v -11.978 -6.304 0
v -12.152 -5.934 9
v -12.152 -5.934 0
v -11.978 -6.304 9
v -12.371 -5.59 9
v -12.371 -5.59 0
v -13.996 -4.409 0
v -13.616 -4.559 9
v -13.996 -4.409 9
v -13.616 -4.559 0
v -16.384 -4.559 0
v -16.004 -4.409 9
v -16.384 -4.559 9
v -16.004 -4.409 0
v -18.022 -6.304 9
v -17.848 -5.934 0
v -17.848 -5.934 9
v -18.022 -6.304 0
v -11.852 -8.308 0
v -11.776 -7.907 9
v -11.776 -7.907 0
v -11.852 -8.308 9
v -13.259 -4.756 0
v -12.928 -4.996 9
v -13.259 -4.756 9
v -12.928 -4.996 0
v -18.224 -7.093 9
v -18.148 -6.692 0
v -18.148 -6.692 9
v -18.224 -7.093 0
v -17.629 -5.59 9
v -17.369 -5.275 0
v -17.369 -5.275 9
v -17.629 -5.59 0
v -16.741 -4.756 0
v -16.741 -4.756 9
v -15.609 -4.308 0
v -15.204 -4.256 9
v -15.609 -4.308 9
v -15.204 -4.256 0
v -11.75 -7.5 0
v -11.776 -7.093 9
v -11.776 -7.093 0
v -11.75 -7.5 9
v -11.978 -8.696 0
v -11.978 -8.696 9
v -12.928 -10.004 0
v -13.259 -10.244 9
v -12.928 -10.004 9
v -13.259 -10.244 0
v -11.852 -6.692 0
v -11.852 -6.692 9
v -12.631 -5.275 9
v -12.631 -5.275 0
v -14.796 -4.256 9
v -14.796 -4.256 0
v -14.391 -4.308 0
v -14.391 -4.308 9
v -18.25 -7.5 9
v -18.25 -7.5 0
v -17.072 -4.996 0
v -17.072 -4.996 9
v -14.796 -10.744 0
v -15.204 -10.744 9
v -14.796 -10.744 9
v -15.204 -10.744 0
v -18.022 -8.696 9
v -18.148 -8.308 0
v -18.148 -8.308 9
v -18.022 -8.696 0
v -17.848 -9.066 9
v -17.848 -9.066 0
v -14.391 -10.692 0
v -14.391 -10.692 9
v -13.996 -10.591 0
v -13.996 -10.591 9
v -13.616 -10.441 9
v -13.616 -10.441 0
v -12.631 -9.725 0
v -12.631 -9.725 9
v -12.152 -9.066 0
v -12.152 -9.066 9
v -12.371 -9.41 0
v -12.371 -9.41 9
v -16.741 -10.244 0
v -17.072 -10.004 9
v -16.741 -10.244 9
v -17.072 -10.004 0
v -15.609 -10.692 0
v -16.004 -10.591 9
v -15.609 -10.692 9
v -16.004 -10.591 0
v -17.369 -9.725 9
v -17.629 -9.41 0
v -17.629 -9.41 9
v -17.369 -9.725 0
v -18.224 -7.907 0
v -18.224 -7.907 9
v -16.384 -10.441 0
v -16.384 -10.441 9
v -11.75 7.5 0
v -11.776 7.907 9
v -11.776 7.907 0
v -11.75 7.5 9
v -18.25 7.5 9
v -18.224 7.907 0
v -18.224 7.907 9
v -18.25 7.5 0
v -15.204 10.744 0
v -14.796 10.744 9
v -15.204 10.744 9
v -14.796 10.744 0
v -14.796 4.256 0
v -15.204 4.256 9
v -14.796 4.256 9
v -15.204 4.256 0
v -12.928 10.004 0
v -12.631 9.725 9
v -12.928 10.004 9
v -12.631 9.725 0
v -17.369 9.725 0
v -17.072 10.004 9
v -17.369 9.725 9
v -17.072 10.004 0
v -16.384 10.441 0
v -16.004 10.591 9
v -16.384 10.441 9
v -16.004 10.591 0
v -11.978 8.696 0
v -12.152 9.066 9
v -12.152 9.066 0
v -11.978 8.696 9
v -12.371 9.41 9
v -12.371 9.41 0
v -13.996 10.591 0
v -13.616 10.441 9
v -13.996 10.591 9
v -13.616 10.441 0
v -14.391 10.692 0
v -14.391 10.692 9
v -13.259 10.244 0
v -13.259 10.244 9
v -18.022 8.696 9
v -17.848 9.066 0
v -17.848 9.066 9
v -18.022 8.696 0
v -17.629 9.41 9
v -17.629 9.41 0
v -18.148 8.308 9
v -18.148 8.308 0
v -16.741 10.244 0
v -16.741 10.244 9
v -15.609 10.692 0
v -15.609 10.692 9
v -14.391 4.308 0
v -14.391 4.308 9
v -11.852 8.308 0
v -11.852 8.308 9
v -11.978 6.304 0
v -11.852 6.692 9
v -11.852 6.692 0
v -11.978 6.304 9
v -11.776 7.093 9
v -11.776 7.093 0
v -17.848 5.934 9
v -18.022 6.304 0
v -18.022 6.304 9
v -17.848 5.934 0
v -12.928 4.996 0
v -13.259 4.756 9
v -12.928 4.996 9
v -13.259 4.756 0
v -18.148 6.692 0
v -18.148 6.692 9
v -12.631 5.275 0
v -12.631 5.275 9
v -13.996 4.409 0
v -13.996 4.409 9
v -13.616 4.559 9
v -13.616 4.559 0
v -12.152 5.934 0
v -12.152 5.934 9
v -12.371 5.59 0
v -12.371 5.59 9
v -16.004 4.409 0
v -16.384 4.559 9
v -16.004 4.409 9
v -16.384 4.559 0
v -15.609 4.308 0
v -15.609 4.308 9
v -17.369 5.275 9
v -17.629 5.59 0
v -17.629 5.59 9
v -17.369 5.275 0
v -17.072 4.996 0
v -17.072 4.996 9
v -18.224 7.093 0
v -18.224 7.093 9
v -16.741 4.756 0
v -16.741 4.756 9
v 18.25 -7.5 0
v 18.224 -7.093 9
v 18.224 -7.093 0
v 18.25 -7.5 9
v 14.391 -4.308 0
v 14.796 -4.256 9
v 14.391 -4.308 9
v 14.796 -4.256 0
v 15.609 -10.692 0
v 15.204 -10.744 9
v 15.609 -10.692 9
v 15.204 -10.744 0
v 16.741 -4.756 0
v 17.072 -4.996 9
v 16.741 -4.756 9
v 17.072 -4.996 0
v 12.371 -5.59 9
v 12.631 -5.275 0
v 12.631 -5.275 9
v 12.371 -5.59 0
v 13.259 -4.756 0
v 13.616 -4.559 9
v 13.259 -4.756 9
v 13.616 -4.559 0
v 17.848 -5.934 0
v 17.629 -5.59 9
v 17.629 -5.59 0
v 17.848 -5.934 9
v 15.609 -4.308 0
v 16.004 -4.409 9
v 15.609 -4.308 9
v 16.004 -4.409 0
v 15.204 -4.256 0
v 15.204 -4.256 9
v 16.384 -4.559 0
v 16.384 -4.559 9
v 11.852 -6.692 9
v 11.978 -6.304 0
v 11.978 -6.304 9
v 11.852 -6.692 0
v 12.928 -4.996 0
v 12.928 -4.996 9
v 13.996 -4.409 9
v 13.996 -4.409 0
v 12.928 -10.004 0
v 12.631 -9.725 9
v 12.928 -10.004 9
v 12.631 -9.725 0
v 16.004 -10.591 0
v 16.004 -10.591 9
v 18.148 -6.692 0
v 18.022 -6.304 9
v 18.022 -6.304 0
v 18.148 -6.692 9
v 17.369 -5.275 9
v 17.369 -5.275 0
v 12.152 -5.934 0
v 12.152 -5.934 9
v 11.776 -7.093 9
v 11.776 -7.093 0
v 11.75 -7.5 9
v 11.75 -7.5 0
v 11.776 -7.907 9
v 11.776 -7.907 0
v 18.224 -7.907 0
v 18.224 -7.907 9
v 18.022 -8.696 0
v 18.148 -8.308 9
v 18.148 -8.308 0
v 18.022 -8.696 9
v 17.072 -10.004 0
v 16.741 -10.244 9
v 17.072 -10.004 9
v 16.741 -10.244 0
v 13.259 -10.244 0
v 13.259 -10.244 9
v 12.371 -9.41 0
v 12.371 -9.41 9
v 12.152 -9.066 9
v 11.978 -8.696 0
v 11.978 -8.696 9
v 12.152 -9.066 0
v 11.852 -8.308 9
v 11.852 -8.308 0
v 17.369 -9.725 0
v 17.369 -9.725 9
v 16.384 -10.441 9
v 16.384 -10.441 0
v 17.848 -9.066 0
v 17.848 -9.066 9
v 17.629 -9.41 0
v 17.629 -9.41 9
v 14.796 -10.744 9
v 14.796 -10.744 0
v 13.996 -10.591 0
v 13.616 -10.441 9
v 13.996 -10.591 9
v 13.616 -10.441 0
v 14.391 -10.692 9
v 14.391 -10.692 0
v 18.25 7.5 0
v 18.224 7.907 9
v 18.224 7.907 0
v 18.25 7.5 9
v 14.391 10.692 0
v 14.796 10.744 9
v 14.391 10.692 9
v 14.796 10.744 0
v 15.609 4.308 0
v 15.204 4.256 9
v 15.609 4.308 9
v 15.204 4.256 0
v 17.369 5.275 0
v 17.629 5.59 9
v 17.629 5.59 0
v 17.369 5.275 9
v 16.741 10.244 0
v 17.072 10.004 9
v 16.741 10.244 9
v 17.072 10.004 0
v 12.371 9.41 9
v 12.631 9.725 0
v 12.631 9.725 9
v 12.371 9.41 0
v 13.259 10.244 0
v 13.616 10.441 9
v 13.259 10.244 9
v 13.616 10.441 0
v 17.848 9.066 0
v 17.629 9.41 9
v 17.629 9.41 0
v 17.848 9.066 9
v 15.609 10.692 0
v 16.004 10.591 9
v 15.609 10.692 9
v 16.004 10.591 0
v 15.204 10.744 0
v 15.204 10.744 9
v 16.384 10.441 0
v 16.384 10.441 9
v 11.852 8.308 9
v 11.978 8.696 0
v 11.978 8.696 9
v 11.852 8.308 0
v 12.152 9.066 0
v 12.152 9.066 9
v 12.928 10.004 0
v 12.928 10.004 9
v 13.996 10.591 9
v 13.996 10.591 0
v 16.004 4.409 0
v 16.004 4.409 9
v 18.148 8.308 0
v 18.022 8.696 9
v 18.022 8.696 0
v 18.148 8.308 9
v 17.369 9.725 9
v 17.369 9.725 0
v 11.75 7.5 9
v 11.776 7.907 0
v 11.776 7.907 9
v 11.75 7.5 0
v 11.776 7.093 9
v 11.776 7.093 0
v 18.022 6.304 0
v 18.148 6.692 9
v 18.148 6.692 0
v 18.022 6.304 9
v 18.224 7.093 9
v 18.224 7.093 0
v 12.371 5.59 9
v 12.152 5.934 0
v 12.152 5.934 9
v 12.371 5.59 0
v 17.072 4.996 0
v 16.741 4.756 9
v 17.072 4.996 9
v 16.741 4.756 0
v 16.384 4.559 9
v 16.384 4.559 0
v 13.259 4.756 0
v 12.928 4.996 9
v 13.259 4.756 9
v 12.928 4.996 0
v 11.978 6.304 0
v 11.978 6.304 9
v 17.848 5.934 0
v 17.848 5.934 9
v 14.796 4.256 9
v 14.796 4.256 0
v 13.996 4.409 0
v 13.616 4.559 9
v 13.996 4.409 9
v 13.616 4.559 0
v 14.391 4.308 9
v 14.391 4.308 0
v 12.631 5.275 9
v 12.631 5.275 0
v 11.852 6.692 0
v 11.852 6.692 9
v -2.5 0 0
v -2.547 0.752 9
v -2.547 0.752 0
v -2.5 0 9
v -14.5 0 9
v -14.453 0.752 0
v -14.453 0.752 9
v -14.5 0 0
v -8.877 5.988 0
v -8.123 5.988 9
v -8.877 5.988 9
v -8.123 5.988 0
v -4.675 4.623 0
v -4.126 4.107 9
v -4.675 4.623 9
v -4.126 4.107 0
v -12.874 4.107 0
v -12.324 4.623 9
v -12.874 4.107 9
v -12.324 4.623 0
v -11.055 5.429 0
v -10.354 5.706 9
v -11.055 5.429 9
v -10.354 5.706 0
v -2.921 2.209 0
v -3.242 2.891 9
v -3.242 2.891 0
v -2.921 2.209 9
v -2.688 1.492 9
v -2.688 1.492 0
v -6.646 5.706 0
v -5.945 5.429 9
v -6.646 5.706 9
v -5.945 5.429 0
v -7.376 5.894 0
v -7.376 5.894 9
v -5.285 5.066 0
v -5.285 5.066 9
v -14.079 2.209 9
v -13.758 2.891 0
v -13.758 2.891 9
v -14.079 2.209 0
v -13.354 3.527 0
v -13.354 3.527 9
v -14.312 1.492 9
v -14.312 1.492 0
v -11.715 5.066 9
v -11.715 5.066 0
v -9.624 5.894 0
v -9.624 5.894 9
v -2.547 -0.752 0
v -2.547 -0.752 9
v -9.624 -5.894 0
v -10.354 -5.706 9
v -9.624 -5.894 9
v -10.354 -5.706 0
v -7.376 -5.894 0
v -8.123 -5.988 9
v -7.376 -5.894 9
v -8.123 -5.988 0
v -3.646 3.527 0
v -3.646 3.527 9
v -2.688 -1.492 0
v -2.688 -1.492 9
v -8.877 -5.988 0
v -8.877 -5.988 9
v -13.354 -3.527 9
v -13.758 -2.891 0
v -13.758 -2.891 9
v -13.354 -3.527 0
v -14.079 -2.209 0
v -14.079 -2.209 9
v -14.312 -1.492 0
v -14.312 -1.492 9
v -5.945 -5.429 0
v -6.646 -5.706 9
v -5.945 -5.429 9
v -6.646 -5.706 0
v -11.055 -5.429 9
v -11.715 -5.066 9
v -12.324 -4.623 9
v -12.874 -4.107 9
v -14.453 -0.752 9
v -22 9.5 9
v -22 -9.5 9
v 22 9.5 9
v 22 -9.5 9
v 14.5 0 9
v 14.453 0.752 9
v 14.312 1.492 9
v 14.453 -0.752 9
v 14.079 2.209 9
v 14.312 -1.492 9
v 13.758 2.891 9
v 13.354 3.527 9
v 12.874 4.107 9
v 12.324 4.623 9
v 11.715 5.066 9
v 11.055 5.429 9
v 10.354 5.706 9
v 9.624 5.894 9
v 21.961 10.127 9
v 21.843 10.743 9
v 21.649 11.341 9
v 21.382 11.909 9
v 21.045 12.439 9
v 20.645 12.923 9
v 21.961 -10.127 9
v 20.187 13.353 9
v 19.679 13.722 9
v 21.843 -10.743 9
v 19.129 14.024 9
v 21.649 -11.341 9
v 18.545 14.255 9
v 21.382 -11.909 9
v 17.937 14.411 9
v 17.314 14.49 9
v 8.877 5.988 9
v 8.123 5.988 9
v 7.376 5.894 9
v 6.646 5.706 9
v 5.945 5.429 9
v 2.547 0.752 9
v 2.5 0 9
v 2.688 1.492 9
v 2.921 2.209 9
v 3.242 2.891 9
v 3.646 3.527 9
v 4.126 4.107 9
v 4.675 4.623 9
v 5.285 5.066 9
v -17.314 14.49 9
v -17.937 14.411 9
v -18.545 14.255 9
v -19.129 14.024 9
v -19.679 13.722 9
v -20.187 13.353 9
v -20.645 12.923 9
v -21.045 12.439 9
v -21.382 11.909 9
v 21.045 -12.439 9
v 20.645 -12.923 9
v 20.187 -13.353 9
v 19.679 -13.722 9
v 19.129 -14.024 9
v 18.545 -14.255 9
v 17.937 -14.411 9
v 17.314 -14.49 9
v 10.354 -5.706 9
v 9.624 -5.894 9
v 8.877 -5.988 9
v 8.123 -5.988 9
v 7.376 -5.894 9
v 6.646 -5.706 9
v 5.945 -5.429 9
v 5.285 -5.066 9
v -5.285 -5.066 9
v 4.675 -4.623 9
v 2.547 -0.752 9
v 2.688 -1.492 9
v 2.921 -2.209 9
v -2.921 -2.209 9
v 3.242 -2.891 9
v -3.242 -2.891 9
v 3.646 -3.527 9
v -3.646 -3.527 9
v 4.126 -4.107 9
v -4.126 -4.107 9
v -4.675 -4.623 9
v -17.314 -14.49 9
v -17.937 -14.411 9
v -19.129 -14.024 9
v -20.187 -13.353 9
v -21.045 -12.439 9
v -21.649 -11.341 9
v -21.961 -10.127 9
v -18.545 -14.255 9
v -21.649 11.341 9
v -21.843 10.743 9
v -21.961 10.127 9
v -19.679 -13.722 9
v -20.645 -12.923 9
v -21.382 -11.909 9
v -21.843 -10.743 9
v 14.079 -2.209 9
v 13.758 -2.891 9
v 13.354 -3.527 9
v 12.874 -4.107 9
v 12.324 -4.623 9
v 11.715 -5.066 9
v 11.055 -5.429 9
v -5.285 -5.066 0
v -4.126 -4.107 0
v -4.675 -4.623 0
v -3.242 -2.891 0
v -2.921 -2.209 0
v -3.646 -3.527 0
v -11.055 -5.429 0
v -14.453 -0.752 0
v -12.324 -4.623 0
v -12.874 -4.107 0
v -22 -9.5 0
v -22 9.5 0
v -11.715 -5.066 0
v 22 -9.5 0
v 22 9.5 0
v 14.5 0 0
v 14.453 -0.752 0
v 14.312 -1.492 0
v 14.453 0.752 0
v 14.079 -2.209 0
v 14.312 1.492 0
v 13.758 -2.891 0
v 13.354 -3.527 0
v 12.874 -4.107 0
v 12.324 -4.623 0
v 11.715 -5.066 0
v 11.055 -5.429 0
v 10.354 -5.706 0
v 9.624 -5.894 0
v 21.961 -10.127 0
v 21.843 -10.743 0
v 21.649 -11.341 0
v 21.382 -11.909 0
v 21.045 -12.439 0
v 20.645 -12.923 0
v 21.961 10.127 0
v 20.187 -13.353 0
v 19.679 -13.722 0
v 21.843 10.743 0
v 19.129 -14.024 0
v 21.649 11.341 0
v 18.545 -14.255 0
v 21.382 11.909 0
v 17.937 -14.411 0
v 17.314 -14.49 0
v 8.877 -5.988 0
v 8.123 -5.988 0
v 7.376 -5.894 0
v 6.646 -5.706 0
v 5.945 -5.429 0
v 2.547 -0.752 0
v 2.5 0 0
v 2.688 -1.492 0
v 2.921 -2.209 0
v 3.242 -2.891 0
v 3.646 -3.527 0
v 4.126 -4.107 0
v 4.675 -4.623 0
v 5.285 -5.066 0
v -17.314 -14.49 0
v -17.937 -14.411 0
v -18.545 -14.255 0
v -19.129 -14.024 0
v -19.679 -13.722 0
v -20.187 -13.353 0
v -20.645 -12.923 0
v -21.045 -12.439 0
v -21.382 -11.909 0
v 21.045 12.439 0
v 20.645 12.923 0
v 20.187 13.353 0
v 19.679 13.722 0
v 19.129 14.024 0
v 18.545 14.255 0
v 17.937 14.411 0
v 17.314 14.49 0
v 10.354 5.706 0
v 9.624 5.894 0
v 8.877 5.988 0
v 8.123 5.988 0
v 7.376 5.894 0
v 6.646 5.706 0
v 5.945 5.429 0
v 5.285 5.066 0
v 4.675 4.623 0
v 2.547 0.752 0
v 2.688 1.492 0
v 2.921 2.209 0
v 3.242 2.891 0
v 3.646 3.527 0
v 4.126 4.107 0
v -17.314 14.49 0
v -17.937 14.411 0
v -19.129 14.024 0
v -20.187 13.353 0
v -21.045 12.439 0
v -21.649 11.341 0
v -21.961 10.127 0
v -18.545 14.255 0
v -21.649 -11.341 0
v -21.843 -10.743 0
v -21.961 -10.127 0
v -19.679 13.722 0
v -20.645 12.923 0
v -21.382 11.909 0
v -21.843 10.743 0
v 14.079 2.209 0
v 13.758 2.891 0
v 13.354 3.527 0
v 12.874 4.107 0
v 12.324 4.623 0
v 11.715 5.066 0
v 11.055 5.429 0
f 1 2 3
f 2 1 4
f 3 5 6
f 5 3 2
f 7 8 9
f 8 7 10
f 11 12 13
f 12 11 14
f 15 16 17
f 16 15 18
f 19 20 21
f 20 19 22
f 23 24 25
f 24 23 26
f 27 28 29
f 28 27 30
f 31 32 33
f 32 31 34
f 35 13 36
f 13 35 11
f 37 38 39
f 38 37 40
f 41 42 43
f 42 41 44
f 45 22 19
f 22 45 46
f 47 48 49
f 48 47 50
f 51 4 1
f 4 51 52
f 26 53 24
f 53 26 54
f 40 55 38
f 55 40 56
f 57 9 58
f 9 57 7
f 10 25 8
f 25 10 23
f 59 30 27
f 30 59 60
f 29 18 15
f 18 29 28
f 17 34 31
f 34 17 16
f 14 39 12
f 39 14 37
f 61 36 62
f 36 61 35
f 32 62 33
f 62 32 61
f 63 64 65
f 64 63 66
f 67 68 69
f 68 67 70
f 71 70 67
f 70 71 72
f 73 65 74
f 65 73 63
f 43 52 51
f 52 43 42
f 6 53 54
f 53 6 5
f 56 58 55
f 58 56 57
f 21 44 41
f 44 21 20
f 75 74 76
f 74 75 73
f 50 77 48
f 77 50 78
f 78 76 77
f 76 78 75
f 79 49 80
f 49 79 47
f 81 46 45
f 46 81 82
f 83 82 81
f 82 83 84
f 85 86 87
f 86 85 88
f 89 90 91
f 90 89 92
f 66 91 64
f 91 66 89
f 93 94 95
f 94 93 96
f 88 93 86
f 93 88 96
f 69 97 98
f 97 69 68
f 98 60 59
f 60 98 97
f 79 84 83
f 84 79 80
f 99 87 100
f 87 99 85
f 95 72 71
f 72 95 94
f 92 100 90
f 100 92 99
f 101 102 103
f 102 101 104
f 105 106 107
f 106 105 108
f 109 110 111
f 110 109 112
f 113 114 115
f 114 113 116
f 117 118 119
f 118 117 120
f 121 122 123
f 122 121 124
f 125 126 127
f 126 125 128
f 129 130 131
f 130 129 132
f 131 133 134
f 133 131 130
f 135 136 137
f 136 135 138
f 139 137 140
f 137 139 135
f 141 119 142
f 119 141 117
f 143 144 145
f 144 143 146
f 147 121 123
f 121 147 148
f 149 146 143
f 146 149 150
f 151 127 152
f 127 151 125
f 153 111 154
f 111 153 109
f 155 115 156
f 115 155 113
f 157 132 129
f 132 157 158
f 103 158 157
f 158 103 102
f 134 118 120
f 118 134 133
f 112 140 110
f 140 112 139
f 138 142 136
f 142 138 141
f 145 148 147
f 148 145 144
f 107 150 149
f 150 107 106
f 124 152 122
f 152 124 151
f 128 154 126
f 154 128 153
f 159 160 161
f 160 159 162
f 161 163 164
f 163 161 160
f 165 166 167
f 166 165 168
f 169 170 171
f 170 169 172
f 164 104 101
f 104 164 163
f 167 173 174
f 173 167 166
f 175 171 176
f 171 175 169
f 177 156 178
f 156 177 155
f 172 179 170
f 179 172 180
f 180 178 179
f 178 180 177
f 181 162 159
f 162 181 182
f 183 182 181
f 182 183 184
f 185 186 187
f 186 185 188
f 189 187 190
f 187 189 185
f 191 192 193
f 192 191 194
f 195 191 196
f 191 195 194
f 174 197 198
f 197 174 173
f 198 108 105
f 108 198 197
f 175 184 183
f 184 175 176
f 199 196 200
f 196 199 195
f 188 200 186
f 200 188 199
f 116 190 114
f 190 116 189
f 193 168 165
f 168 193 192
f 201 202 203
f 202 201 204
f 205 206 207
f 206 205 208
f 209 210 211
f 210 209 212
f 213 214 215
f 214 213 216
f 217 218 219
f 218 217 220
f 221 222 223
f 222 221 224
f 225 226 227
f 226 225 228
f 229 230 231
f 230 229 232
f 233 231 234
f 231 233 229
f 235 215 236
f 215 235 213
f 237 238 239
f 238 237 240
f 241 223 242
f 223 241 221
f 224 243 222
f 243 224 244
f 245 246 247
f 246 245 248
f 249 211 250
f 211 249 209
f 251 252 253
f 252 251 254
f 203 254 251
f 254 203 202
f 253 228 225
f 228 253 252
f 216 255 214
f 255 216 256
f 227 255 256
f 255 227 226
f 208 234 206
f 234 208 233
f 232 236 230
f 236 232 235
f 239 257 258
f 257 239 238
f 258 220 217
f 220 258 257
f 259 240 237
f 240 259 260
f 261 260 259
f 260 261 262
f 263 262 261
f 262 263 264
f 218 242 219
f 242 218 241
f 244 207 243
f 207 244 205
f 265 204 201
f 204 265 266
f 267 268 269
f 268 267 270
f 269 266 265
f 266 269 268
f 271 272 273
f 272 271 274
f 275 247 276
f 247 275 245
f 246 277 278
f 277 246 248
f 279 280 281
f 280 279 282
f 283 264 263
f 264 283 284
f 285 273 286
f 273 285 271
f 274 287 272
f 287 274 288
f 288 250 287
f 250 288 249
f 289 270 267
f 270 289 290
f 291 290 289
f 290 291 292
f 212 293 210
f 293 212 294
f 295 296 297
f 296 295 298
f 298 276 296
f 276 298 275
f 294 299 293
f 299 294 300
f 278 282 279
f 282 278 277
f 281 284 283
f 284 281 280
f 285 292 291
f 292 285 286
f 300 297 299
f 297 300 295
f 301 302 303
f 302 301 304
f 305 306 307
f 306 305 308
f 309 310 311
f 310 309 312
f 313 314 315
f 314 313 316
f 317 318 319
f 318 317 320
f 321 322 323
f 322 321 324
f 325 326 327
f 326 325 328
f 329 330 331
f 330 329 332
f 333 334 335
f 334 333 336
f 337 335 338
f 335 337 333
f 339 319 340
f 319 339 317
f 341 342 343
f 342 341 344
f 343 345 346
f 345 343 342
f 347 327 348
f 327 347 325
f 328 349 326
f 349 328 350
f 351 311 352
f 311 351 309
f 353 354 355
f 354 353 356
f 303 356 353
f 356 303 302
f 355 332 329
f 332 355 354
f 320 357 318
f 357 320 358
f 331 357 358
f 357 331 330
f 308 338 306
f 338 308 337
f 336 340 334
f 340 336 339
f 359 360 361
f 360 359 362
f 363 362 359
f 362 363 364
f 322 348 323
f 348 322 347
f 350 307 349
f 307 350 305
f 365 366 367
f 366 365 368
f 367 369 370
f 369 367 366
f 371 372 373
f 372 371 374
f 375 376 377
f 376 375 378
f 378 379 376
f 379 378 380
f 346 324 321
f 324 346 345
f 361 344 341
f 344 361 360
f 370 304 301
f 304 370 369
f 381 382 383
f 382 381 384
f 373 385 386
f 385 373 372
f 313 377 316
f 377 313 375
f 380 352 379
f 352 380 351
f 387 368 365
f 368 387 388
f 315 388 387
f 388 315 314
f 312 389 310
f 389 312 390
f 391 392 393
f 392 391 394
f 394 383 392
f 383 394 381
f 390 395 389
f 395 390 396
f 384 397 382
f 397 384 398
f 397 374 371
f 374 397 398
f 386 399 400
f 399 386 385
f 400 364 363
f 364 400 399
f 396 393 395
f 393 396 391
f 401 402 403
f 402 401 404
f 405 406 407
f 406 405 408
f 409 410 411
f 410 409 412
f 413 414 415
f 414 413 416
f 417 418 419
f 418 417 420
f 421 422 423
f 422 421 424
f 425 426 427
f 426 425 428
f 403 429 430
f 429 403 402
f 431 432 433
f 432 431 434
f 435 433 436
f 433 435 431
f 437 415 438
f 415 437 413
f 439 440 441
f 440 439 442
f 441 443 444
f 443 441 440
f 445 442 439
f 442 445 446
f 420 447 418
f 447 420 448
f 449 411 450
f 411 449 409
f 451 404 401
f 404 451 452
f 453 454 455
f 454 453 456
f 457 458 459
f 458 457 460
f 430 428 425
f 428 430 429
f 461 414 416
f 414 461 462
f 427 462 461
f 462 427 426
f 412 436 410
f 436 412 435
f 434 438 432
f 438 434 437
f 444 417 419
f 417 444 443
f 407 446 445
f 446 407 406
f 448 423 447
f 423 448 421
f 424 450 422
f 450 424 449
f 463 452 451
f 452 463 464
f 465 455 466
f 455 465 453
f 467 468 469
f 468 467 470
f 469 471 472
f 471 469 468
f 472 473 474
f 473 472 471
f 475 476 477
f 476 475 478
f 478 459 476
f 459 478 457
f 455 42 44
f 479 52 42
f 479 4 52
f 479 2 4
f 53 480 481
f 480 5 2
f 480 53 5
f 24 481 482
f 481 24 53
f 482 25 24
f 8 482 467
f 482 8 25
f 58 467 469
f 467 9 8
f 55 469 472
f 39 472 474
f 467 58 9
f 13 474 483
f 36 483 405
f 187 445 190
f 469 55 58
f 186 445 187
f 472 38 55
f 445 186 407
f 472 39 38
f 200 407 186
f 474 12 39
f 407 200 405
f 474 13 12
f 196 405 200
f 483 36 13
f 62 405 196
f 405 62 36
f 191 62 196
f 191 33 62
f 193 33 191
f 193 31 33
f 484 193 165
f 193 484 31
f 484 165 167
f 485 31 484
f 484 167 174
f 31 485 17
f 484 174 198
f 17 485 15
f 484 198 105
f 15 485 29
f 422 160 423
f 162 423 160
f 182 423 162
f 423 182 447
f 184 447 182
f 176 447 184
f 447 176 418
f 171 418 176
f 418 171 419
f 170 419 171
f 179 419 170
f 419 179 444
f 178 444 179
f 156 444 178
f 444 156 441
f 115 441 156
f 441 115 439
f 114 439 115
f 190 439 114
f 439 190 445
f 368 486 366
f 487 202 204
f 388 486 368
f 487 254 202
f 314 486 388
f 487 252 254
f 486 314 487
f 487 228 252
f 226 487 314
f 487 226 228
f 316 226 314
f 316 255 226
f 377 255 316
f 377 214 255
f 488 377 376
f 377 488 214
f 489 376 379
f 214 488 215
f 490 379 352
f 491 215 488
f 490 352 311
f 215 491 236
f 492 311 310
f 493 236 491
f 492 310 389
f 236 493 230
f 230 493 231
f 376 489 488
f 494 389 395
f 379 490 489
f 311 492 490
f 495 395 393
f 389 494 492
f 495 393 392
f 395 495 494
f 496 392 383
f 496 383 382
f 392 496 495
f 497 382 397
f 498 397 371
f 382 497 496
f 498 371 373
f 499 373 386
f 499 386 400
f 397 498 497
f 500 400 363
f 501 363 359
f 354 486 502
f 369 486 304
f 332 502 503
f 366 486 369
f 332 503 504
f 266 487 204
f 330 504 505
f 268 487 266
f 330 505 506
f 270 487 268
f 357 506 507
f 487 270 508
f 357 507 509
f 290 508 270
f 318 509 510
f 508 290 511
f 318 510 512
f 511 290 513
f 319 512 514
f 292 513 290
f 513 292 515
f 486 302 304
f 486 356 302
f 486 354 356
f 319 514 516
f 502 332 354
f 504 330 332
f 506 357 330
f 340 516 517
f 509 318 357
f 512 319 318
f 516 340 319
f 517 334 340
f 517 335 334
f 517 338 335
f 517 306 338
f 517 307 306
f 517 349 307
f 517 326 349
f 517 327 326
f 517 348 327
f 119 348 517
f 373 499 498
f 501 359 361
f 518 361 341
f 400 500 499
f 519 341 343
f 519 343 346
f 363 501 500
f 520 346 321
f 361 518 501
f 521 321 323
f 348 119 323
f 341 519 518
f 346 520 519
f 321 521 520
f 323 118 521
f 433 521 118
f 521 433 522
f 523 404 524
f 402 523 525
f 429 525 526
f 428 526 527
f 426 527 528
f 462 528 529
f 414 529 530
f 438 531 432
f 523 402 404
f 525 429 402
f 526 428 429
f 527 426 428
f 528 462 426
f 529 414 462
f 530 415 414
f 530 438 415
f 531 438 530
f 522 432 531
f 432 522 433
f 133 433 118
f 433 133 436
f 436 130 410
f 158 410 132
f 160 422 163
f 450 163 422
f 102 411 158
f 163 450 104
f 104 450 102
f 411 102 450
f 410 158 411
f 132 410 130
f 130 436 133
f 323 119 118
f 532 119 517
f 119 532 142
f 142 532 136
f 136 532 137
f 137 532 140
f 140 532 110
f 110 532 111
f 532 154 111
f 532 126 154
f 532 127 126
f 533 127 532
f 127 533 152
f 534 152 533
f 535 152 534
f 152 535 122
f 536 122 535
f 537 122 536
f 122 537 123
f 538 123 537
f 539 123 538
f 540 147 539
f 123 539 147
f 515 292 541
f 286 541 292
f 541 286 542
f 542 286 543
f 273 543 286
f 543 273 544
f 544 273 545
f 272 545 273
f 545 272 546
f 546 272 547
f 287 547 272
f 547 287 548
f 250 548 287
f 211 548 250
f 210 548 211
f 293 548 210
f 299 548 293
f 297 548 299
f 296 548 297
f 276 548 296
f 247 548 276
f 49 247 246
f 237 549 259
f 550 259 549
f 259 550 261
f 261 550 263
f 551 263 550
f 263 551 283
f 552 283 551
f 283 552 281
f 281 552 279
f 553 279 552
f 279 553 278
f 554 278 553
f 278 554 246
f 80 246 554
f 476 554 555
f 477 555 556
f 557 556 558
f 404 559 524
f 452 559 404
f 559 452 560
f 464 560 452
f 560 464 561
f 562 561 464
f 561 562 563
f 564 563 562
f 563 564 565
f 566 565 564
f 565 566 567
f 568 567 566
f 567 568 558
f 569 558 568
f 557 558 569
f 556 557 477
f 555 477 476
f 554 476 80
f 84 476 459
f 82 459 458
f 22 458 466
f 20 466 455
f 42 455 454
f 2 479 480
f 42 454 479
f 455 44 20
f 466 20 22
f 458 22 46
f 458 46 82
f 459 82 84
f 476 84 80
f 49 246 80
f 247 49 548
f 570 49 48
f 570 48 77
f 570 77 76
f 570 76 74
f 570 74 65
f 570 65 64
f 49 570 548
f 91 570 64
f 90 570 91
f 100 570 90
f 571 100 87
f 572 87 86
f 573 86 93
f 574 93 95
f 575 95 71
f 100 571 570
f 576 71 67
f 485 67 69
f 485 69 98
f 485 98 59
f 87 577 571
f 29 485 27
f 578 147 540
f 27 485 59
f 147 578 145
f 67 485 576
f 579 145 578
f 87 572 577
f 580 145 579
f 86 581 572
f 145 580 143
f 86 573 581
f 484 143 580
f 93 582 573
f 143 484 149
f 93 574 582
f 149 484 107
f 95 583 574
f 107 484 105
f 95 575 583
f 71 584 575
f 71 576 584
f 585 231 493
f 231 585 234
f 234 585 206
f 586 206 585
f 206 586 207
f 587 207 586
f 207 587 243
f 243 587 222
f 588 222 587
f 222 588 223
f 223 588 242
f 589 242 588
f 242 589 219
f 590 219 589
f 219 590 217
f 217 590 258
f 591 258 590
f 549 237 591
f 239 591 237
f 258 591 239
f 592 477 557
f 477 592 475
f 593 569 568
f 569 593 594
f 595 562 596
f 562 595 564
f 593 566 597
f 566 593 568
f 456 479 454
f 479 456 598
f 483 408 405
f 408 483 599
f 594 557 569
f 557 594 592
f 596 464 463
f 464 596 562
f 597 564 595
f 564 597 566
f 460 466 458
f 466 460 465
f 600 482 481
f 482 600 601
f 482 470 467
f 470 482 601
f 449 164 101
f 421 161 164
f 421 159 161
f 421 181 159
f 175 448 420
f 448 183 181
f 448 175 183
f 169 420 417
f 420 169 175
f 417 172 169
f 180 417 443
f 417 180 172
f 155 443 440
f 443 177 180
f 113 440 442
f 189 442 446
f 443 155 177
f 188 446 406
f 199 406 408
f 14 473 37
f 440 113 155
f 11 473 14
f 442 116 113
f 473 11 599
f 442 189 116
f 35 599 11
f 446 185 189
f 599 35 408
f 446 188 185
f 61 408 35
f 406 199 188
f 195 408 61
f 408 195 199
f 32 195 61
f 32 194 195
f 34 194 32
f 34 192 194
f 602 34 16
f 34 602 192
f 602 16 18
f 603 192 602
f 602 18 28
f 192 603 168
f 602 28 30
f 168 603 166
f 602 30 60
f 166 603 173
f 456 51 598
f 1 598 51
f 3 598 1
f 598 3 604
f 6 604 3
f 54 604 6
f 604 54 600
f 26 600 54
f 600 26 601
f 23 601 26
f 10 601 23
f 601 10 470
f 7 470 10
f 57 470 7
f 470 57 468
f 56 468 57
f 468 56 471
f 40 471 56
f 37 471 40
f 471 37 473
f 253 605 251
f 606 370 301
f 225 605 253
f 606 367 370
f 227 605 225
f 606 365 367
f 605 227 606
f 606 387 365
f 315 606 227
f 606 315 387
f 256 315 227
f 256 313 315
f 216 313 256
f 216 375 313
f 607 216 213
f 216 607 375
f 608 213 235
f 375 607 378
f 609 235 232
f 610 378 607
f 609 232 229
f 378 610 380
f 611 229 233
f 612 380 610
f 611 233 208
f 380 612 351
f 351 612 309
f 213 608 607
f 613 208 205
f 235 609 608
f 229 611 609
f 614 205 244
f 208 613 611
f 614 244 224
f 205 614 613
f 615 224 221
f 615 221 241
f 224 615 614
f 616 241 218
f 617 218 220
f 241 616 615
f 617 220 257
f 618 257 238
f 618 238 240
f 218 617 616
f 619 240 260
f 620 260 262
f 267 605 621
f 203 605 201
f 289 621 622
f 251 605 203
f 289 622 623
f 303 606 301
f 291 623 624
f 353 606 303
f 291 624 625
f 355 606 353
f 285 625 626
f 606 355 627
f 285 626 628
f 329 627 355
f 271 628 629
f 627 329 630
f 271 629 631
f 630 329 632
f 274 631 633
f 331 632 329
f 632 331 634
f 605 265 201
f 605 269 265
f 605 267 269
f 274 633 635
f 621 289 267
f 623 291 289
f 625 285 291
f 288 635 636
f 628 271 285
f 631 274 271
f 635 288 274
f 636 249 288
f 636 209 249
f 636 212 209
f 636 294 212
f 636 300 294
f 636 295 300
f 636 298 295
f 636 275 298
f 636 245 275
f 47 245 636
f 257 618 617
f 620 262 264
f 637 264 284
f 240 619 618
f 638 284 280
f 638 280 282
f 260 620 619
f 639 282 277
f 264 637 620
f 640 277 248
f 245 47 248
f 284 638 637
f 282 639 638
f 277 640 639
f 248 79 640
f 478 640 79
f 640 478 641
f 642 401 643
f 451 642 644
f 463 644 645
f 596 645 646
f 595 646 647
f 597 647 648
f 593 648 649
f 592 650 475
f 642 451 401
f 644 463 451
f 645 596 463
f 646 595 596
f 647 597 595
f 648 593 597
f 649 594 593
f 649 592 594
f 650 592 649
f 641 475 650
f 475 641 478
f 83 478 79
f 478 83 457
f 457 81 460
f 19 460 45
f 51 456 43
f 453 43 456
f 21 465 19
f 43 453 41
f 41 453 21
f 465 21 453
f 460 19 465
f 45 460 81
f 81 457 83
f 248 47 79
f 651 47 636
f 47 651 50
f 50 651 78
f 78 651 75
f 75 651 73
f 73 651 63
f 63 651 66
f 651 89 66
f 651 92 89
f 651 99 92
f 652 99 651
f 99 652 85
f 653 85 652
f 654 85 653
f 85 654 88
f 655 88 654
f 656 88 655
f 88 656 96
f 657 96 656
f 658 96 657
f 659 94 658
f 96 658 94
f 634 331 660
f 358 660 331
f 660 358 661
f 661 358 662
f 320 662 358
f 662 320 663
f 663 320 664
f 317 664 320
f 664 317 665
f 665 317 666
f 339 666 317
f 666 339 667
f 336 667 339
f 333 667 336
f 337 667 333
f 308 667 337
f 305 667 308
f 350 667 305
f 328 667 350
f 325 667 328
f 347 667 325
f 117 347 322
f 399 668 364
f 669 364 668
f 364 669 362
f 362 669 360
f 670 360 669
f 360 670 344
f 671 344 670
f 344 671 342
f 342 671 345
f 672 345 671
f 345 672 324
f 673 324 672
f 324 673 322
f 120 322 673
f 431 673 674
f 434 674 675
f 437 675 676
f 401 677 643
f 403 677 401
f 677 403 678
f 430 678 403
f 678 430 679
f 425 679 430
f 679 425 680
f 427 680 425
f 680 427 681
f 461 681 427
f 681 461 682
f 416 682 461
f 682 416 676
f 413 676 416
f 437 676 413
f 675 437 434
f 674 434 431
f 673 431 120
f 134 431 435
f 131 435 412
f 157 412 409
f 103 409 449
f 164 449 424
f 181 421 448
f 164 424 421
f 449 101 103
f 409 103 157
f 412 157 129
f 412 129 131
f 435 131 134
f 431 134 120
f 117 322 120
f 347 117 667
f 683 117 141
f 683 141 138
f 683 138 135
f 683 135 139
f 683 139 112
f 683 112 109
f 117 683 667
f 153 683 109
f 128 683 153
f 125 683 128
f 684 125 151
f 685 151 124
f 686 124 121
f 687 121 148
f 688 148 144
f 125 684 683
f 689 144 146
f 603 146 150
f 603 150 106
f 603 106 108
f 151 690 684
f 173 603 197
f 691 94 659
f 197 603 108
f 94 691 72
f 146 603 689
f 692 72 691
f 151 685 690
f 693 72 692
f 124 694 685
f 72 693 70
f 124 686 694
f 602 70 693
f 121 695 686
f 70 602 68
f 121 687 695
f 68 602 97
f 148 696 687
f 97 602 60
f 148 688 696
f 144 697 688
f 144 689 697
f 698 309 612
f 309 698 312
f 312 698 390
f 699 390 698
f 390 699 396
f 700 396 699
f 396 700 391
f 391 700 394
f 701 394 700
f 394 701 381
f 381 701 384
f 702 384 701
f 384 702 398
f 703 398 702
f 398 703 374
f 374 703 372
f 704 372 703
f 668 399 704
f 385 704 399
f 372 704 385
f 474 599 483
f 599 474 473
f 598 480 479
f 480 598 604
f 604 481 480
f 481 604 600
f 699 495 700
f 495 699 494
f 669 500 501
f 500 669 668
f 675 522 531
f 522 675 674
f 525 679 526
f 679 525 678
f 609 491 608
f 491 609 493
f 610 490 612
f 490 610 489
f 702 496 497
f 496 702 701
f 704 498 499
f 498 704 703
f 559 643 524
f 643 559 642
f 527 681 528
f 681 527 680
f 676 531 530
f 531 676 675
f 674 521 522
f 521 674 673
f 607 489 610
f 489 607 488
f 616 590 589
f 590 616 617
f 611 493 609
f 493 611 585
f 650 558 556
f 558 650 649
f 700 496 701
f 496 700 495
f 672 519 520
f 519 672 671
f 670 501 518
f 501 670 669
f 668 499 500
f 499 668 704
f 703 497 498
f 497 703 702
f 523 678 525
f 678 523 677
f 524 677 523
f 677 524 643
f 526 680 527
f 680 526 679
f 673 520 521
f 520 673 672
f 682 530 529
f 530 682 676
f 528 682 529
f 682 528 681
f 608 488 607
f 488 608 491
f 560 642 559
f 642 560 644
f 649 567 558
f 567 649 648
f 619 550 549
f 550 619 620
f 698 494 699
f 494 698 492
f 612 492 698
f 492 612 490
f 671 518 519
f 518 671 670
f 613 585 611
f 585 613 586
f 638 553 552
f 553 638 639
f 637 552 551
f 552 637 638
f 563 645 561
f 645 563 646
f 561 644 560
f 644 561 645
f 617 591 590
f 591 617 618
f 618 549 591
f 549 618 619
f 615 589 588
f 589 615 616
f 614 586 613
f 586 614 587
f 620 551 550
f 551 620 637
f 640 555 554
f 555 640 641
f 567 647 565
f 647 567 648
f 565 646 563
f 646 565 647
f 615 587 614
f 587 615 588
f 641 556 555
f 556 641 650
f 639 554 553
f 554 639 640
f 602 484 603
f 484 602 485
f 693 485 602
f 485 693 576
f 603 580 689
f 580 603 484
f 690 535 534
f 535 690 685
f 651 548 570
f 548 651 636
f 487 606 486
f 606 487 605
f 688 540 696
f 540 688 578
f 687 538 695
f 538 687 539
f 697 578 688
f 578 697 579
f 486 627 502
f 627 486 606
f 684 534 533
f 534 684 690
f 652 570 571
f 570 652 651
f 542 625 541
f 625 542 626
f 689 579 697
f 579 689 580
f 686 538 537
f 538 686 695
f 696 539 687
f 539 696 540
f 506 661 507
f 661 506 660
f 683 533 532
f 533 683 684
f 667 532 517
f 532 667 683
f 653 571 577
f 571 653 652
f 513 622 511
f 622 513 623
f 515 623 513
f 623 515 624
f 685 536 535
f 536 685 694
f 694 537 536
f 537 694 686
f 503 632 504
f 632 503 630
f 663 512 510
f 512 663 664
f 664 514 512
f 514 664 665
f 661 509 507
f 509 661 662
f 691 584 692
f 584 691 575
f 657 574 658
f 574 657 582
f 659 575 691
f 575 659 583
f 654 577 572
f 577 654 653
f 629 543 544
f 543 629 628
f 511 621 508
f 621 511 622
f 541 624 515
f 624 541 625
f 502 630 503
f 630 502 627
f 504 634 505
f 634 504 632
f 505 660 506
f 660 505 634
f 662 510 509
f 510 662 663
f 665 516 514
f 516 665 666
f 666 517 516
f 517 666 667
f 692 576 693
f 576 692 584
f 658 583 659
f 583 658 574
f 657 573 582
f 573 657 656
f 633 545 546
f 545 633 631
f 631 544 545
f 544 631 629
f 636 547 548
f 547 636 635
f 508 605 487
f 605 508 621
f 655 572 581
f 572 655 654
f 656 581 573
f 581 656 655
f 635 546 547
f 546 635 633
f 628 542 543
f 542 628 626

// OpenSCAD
$fn = 50;


difference() {
	union() {
		hull() {
			translate(v = [-17.0000000000, 9.5000000000, 0]) {
				cylinder(h = 9, r = 5);
			}
			translate(v = [17.0000000000, 9.5000000000, 0]) {
				cylinder(h = 9, r = 5);
			}
			translate(v = [-17.0000000000, -9.5000000000, 0]) {
				cylinder(h = 9, r = 5);
			}
			translate(v = [17.0000000000, -9.5000000000, 0]) {
				cylinder(h = 9, r = 5);
			}
		}
	}
	union() {
		#translate(v = [-15.0000000000, -7.5000000000, -100.0000000000]) {
			cylinder(h = 200, r = 3.2500000000);
		}
		#translate(v = [-15.0000000000, 7.5000000000, -100.0000000000]) {
			cylinder(h = 200, r = 3.2500000000);
		}
		#translate(v = [15.0000000000, -7.5000000000, -100.0000000000]) {
			cylinder(h = 200, r = 3.2500000000);
		}
		#translate(v = [15.0000000000, 7.5000000000, -100.0000000000]) {
			cylinder(h = 200, r = 3.2500000000);
		}
		#translate(v = [-8.5000000000, 0, 0]) {
			cylinder(h = 9, r = 6.0000000000);
		}
		#translate(v = [8.5000000000, 0, 0]) {
			cylinder(h = 9, r = 6.0000000000);
		}
	}
}
